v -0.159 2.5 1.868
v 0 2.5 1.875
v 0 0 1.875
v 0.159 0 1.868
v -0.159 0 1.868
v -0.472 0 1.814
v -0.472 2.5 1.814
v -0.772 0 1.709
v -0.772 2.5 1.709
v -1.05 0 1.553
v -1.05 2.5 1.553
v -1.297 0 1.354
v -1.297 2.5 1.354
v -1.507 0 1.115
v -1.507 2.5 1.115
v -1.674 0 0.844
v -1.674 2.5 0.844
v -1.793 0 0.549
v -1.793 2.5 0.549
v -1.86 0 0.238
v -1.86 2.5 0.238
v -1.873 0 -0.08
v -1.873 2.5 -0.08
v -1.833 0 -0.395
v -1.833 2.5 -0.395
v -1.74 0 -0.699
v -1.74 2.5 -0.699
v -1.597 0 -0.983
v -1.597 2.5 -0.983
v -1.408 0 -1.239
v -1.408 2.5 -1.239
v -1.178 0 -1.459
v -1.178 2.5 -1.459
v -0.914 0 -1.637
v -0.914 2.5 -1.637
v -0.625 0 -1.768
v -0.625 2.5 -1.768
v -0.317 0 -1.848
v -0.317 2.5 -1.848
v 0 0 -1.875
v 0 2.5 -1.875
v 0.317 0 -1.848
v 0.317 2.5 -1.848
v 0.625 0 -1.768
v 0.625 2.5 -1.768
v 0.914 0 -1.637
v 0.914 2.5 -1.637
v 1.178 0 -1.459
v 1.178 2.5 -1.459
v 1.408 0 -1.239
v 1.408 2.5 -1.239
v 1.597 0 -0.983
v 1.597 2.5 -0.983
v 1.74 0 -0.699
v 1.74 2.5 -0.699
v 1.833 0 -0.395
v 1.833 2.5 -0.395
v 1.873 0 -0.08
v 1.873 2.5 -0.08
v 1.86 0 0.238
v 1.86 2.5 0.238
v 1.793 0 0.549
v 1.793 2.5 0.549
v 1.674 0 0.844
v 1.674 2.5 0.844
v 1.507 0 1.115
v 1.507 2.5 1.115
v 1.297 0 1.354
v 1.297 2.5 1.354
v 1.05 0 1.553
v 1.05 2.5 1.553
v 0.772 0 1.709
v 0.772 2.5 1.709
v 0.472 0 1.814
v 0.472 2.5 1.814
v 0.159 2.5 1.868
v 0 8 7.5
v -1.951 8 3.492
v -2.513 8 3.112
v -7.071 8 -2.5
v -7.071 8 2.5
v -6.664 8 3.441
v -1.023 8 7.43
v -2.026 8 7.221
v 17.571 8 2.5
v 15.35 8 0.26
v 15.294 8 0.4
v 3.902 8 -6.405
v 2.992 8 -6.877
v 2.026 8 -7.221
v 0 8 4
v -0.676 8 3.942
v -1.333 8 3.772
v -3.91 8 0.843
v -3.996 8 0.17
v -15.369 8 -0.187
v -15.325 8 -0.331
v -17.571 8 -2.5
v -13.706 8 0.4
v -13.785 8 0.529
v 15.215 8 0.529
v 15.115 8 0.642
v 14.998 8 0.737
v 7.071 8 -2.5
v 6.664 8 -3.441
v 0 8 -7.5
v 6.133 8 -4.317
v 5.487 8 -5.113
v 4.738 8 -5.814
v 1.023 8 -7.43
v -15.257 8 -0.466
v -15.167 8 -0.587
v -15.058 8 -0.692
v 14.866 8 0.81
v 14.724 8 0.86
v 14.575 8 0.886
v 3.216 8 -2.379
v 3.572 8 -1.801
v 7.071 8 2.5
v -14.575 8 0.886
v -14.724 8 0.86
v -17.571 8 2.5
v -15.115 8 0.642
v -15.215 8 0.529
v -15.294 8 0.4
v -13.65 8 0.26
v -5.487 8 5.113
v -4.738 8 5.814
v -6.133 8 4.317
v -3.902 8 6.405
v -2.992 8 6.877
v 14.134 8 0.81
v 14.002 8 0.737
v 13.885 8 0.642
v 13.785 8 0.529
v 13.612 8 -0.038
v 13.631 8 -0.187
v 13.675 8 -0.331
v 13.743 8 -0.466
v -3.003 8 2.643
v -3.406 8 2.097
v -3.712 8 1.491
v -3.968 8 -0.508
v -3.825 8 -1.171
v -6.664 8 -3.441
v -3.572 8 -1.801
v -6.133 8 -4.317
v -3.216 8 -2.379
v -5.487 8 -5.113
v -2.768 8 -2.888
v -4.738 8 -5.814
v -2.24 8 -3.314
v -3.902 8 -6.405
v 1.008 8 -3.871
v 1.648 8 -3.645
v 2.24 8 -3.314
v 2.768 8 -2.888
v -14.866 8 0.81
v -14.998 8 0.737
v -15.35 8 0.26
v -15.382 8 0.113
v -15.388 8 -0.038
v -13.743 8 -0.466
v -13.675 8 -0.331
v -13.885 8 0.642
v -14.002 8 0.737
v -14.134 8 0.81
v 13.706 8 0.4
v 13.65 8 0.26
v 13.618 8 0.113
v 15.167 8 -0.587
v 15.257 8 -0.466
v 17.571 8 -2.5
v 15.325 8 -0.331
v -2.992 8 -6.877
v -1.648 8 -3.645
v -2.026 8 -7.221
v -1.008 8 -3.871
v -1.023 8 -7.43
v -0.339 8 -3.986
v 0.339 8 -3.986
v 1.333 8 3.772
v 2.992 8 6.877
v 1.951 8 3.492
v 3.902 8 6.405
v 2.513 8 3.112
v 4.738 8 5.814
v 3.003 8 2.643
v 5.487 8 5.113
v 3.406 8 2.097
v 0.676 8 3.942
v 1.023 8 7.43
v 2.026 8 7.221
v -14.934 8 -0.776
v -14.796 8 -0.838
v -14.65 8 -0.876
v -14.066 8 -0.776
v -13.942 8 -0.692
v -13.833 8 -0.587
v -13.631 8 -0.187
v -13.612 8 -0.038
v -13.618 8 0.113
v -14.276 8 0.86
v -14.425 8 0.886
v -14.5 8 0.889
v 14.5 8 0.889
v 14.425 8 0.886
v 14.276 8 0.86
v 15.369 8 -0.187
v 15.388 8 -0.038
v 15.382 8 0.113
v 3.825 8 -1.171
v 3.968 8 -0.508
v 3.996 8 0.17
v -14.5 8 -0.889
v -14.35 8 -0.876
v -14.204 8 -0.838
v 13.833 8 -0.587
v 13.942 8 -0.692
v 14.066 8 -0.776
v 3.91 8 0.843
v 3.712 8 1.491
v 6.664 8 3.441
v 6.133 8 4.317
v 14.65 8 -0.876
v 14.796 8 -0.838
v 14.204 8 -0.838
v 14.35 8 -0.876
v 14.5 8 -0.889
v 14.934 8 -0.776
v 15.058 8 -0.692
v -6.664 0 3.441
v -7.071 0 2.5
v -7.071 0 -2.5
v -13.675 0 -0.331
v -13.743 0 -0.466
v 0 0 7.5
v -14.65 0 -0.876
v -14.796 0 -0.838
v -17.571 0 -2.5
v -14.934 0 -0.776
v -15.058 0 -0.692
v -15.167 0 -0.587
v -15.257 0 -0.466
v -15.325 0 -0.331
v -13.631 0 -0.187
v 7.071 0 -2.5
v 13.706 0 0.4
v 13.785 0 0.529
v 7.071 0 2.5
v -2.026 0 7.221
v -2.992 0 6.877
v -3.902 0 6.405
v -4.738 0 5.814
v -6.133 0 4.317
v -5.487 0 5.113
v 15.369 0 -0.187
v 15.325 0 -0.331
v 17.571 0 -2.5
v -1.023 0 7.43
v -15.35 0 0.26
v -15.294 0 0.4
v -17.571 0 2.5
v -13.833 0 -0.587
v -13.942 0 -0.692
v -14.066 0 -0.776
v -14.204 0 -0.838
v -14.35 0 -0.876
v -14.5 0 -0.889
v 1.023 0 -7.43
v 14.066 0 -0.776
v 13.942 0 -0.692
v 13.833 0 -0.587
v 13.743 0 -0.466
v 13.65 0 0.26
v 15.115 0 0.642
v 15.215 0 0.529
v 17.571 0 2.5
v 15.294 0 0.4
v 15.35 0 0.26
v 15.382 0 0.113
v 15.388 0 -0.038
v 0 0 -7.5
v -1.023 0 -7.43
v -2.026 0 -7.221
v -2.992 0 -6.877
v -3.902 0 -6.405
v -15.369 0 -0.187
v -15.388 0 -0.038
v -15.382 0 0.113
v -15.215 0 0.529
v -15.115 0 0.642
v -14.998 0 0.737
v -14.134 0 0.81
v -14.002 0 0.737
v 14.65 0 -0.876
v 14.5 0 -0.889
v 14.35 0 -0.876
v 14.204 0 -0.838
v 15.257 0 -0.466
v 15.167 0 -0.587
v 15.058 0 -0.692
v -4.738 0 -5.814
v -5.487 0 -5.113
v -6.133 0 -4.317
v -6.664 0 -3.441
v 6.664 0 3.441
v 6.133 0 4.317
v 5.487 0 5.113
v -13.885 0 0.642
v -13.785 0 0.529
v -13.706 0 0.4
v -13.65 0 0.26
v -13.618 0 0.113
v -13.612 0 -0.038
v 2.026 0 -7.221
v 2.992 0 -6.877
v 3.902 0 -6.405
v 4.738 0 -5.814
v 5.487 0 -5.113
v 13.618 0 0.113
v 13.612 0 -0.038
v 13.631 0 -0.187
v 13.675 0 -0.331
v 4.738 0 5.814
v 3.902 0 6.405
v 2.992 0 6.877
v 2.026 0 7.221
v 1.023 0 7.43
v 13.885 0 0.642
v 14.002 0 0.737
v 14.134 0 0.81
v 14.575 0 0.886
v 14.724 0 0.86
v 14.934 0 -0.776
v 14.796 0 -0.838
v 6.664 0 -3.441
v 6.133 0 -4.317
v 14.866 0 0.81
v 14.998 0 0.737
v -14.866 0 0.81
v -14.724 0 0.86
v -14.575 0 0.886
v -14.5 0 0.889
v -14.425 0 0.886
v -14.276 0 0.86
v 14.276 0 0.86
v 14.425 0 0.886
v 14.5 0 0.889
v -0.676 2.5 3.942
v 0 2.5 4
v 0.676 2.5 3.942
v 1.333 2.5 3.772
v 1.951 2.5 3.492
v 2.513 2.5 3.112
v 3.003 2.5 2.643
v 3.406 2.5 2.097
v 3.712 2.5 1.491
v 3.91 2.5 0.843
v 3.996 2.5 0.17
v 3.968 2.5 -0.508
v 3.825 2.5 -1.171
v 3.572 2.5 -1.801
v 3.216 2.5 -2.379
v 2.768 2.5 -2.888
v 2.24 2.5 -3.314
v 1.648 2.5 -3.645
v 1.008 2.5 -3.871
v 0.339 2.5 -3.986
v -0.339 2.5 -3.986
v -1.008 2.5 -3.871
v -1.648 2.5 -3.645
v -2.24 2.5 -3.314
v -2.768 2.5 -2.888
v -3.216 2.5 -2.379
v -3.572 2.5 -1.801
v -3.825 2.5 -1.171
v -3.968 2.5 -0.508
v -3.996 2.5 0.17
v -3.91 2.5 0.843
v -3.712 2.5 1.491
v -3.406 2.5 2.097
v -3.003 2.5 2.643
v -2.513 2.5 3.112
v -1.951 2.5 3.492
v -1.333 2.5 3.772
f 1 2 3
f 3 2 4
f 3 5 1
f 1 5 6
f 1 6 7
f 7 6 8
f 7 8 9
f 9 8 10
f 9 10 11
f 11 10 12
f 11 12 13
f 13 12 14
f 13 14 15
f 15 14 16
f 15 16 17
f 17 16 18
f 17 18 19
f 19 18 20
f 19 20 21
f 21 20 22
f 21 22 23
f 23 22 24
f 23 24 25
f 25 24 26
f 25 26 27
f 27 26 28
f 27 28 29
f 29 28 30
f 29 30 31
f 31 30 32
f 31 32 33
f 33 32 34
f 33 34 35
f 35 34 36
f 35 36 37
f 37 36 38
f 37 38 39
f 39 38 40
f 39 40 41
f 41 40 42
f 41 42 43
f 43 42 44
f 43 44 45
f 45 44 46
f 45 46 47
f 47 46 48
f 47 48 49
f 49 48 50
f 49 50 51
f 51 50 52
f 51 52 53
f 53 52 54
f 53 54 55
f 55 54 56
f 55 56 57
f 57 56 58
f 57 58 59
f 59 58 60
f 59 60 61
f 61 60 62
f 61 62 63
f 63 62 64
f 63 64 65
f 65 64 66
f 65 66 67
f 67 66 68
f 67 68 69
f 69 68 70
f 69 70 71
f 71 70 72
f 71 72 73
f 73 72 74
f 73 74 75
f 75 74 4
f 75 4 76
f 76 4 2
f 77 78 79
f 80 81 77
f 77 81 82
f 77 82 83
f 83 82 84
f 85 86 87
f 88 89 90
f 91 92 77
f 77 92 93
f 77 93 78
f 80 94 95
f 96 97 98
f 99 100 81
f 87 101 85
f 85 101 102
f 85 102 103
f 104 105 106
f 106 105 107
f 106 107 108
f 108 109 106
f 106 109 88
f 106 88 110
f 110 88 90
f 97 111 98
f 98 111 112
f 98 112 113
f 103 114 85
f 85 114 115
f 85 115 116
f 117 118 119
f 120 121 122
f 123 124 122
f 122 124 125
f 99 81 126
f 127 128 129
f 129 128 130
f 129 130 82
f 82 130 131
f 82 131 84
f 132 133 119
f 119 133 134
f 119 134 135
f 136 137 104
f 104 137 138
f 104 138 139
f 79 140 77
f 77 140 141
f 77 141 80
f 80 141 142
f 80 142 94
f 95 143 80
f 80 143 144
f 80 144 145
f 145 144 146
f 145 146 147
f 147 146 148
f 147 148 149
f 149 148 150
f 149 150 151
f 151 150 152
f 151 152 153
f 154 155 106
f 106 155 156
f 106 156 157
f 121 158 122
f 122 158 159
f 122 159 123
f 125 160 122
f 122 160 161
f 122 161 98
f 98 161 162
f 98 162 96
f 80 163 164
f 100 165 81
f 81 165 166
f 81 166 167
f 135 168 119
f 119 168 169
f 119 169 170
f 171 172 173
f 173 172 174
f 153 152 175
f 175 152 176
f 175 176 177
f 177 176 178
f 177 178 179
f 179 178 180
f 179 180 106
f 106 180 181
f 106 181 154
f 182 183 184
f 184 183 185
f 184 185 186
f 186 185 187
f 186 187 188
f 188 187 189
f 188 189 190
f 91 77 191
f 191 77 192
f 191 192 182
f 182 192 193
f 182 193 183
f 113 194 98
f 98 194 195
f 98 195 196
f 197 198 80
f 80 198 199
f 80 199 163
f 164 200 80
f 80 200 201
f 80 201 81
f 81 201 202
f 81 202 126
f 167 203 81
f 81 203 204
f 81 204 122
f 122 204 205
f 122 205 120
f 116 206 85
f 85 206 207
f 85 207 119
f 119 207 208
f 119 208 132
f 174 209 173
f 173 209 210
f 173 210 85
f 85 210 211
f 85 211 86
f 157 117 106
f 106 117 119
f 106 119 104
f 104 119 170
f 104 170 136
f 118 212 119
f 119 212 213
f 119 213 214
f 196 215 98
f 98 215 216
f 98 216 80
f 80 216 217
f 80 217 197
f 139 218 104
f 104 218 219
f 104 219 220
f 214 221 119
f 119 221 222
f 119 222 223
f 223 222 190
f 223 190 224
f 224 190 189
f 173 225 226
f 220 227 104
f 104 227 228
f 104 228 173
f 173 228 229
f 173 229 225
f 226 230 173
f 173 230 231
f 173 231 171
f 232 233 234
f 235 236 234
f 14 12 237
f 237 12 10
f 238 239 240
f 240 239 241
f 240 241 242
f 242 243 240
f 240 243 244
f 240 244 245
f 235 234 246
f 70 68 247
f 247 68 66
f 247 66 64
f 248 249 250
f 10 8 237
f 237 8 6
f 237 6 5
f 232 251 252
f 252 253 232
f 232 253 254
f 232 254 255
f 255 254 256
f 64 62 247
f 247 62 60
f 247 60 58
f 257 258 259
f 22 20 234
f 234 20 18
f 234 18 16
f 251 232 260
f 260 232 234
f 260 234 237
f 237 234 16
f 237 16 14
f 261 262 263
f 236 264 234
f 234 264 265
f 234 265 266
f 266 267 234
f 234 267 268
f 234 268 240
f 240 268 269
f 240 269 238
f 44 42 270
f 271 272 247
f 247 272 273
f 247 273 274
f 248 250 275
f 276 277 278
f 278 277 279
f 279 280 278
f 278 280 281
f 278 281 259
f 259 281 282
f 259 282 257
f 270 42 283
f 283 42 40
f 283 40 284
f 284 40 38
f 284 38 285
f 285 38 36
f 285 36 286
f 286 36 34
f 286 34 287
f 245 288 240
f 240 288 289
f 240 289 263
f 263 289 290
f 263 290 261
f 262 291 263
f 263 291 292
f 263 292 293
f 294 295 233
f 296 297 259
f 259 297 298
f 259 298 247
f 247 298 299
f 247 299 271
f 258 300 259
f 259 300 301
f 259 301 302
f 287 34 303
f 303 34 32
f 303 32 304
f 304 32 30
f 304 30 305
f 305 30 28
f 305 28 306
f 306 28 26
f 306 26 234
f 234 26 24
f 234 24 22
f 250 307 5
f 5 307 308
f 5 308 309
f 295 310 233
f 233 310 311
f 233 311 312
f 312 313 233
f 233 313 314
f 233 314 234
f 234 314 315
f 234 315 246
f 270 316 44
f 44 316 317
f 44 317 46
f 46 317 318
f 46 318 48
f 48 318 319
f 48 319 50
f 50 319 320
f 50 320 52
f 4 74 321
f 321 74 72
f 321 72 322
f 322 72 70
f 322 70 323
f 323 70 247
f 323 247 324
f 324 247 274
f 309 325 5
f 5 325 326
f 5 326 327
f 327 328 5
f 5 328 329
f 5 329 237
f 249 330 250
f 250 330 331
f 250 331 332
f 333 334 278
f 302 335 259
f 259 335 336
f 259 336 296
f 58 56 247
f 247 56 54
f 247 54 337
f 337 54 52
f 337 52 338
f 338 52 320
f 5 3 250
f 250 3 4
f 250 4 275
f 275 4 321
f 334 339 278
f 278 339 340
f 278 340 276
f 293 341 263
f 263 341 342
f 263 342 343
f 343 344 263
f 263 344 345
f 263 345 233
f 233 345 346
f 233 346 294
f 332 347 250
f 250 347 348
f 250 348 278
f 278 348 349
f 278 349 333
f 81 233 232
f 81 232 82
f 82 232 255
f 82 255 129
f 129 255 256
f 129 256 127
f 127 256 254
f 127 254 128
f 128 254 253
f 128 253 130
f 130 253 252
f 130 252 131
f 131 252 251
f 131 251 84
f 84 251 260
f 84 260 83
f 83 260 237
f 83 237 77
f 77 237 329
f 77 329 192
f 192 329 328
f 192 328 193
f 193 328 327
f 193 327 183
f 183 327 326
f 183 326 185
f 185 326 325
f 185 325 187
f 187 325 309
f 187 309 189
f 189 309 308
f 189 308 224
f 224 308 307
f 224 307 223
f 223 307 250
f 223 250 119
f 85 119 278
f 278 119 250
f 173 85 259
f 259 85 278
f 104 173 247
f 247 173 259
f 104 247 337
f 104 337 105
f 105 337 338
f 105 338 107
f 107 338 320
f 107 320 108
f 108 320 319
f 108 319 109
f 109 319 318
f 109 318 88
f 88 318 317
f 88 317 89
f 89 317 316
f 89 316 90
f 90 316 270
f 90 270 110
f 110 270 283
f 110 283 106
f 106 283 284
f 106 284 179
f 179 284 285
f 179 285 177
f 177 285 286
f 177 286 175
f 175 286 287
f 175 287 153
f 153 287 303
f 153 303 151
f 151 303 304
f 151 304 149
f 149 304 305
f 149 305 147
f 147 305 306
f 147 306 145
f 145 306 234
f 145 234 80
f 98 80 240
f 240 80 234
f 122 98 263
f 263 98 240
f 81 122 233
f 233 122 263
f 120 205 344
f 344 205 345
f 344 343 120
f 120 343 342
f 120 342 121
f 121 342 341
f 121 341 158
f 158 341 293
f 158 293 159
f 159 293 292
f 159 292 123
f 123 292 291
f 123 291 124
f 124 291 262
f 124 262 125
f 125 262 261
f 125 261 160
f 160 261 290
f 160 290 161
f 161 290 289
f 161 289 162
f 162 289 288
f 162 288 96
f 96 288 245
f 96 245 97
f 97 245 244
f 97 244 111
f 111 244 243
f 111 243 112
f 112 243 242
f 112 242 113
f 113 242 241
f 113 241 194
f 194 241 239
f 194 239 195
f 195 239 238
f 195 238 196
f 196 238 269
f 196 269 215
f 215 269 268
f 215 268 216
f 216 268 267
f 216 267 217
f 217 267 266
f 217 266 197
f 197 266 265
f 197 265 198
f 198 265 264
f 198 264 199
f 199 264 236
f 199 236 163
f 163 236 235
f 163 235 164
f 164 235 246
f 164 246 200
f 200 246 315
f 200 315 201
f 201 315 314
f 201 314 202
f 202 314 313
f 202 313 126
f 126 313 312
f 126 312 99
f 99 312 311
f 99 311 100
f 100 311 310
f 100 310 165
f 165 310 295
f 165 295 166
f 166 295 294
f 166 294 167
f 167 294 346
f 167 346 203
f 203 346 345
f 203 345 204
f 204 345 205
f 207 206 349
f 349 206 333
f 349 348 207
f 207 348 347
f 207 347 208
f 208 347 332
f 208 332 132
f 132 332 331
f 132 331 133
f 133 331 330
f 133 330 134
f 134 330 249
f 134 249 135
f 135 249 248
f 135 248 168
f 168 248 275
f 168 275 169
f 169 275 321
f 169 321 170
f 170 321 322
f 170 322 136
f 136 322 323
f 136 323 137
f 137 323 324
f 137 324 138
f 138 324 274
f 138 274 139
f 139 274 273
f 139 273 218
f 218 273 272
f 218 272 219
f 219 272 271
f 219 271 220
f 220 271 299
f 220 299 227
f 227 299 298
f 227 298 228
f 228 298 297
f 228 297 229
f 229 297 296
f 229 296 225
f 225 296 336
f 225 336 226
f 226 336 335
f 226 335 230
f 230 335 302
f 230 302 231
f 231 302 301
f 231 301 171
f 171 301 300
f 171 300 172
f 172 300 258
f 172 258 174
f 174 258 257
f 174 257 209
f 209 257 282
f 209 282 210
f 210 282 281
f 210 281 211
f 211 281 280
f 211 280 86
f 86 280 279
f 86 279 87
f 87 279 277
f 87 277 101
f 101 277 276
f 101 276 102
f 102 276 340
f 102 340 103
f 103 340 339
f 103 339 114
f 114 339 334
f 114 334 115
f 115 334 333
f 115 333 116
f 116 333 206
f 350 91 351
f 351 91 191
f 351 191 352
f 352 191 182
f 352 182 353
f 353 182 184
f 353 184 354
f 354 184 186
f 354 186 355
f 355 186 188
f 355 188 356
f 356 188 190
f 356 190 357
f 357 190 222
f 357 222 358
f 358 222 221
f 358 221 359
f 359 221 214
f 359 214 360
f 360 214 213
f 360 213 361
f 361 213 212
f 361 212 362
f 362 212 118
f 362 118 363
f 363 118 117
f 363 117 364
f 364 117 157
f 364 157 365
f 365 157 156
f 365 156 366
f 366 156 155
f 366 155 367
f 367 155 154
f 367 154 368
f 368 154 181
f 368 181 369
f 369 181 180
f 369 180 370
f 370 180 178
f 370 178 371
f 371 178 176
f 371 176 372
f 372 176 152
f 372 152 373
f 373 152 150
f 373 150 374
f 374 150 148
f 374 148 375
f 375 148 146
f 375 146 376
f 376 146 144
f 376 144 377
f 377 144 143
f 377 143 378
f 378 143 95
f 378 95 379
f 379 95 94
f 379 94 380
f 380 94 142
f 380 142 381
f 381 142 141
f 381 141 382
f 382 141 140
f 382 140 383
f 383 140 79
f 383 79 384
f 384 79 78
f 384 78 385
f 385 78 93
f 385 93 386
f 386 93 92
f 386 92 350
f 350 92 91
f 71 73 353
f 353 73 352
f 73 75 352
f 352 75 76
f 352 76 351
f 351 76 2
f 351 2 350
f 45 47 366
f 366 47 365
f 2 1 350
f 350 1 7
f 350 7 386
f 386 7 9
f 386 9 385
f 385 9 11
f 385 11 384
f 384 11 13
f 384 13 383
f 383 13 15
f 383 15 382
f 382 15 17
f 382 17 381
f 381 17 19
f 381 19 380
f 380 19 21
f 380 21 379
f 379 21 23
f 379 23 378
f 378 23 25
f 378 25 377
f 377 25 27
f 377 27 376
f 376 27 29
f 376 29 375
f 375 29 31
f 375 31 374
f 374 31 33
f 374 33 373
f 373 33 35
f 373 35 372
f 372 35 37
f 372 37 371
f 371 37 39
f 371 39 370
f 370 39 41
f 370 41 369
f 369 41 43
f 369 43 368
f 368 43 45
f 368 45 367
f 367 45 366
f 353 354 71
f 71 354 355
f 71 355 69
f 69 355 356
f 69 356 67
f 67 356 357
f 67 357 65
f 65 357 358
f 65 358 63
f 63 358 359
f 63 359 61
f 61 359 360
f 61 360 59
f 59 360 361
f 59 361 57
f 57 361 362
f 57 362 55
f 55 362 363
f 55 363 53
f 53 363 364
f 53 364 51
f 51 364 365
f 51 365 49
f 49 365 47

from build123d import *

# Parameters (mm, degrees)
SKETCH1_R           = 1.875
SKETCH1_R_2         = 0.889
BOSS_EXTRUDE1_DEPTH = 8
SKETCH2_R           = 4
CUT_EXTRUDE1_DEPTH  = 5.5


with BuildPart() as part:
    # Sketch1 → Boss-Extrude1 (new body)
    with BuildSketch(Plane(origin=(0, 0, 0), x_dir=(1, 0, 0), z_dir=(0, 1, 0))):
        with BuildLine():
            Line((-7.071067812, 2.5), (-17.571067812, 2.5))
            Line((-17.571067812, 2.5), (-17.571067812, -2.5))
            Line((-17.571067812, -2.5), (-7.071067812, -2.5))
            ThreePointArc((-7.071067812, -2.5), (0, -7.5), (7.071067812, -2.5))
            Line((7.071067812, -2.5), (17.571067812, -2.5))
            Line((17.571067812, -2.5), (17.571067812, 2.5))
            Line((17.571067812, 2.5), (7.071067812, 2.5))
            ThreePointArc((7.071067812, 2.5), (0, 7.5), (-7.071067812, 2.5))
        make_face()
        with Locations(Location((0, 0, 0), (0, 0, 270))):
            Circle(SKETCH1_R, mode=Mode.SUBTRACT)
        with Locations(Location((-14.5, 0, 0), (0, 0, 270))):
            Circle(SKETCH1_R_2, mode=Mode.SUBTRACT)
        with Locations(Location((14.5, 0, 0), (0, 0, 270))):
            Circle(SKETCH1_R_2, mode=Mode.SUBTRACT)
    extrude(amount=BOSS_EXTRUDE1_DEPTH)

    # Sketch2 → Cut-Extrude1 (cut)
    with BuildSketch(Plane(origin=(0, 8, 0), x_dir=(1, 0, 0), z_dir=(0, 1, 0))):
        with Locations(Location((0, 0, 0), (0, 0, 270))):
            Circle(SKETCH2_R)
    extrude(amount=-CUT_EXTRUDE1_DEPTH, mode=Mode.SUBTRACT)


solid = part.part
